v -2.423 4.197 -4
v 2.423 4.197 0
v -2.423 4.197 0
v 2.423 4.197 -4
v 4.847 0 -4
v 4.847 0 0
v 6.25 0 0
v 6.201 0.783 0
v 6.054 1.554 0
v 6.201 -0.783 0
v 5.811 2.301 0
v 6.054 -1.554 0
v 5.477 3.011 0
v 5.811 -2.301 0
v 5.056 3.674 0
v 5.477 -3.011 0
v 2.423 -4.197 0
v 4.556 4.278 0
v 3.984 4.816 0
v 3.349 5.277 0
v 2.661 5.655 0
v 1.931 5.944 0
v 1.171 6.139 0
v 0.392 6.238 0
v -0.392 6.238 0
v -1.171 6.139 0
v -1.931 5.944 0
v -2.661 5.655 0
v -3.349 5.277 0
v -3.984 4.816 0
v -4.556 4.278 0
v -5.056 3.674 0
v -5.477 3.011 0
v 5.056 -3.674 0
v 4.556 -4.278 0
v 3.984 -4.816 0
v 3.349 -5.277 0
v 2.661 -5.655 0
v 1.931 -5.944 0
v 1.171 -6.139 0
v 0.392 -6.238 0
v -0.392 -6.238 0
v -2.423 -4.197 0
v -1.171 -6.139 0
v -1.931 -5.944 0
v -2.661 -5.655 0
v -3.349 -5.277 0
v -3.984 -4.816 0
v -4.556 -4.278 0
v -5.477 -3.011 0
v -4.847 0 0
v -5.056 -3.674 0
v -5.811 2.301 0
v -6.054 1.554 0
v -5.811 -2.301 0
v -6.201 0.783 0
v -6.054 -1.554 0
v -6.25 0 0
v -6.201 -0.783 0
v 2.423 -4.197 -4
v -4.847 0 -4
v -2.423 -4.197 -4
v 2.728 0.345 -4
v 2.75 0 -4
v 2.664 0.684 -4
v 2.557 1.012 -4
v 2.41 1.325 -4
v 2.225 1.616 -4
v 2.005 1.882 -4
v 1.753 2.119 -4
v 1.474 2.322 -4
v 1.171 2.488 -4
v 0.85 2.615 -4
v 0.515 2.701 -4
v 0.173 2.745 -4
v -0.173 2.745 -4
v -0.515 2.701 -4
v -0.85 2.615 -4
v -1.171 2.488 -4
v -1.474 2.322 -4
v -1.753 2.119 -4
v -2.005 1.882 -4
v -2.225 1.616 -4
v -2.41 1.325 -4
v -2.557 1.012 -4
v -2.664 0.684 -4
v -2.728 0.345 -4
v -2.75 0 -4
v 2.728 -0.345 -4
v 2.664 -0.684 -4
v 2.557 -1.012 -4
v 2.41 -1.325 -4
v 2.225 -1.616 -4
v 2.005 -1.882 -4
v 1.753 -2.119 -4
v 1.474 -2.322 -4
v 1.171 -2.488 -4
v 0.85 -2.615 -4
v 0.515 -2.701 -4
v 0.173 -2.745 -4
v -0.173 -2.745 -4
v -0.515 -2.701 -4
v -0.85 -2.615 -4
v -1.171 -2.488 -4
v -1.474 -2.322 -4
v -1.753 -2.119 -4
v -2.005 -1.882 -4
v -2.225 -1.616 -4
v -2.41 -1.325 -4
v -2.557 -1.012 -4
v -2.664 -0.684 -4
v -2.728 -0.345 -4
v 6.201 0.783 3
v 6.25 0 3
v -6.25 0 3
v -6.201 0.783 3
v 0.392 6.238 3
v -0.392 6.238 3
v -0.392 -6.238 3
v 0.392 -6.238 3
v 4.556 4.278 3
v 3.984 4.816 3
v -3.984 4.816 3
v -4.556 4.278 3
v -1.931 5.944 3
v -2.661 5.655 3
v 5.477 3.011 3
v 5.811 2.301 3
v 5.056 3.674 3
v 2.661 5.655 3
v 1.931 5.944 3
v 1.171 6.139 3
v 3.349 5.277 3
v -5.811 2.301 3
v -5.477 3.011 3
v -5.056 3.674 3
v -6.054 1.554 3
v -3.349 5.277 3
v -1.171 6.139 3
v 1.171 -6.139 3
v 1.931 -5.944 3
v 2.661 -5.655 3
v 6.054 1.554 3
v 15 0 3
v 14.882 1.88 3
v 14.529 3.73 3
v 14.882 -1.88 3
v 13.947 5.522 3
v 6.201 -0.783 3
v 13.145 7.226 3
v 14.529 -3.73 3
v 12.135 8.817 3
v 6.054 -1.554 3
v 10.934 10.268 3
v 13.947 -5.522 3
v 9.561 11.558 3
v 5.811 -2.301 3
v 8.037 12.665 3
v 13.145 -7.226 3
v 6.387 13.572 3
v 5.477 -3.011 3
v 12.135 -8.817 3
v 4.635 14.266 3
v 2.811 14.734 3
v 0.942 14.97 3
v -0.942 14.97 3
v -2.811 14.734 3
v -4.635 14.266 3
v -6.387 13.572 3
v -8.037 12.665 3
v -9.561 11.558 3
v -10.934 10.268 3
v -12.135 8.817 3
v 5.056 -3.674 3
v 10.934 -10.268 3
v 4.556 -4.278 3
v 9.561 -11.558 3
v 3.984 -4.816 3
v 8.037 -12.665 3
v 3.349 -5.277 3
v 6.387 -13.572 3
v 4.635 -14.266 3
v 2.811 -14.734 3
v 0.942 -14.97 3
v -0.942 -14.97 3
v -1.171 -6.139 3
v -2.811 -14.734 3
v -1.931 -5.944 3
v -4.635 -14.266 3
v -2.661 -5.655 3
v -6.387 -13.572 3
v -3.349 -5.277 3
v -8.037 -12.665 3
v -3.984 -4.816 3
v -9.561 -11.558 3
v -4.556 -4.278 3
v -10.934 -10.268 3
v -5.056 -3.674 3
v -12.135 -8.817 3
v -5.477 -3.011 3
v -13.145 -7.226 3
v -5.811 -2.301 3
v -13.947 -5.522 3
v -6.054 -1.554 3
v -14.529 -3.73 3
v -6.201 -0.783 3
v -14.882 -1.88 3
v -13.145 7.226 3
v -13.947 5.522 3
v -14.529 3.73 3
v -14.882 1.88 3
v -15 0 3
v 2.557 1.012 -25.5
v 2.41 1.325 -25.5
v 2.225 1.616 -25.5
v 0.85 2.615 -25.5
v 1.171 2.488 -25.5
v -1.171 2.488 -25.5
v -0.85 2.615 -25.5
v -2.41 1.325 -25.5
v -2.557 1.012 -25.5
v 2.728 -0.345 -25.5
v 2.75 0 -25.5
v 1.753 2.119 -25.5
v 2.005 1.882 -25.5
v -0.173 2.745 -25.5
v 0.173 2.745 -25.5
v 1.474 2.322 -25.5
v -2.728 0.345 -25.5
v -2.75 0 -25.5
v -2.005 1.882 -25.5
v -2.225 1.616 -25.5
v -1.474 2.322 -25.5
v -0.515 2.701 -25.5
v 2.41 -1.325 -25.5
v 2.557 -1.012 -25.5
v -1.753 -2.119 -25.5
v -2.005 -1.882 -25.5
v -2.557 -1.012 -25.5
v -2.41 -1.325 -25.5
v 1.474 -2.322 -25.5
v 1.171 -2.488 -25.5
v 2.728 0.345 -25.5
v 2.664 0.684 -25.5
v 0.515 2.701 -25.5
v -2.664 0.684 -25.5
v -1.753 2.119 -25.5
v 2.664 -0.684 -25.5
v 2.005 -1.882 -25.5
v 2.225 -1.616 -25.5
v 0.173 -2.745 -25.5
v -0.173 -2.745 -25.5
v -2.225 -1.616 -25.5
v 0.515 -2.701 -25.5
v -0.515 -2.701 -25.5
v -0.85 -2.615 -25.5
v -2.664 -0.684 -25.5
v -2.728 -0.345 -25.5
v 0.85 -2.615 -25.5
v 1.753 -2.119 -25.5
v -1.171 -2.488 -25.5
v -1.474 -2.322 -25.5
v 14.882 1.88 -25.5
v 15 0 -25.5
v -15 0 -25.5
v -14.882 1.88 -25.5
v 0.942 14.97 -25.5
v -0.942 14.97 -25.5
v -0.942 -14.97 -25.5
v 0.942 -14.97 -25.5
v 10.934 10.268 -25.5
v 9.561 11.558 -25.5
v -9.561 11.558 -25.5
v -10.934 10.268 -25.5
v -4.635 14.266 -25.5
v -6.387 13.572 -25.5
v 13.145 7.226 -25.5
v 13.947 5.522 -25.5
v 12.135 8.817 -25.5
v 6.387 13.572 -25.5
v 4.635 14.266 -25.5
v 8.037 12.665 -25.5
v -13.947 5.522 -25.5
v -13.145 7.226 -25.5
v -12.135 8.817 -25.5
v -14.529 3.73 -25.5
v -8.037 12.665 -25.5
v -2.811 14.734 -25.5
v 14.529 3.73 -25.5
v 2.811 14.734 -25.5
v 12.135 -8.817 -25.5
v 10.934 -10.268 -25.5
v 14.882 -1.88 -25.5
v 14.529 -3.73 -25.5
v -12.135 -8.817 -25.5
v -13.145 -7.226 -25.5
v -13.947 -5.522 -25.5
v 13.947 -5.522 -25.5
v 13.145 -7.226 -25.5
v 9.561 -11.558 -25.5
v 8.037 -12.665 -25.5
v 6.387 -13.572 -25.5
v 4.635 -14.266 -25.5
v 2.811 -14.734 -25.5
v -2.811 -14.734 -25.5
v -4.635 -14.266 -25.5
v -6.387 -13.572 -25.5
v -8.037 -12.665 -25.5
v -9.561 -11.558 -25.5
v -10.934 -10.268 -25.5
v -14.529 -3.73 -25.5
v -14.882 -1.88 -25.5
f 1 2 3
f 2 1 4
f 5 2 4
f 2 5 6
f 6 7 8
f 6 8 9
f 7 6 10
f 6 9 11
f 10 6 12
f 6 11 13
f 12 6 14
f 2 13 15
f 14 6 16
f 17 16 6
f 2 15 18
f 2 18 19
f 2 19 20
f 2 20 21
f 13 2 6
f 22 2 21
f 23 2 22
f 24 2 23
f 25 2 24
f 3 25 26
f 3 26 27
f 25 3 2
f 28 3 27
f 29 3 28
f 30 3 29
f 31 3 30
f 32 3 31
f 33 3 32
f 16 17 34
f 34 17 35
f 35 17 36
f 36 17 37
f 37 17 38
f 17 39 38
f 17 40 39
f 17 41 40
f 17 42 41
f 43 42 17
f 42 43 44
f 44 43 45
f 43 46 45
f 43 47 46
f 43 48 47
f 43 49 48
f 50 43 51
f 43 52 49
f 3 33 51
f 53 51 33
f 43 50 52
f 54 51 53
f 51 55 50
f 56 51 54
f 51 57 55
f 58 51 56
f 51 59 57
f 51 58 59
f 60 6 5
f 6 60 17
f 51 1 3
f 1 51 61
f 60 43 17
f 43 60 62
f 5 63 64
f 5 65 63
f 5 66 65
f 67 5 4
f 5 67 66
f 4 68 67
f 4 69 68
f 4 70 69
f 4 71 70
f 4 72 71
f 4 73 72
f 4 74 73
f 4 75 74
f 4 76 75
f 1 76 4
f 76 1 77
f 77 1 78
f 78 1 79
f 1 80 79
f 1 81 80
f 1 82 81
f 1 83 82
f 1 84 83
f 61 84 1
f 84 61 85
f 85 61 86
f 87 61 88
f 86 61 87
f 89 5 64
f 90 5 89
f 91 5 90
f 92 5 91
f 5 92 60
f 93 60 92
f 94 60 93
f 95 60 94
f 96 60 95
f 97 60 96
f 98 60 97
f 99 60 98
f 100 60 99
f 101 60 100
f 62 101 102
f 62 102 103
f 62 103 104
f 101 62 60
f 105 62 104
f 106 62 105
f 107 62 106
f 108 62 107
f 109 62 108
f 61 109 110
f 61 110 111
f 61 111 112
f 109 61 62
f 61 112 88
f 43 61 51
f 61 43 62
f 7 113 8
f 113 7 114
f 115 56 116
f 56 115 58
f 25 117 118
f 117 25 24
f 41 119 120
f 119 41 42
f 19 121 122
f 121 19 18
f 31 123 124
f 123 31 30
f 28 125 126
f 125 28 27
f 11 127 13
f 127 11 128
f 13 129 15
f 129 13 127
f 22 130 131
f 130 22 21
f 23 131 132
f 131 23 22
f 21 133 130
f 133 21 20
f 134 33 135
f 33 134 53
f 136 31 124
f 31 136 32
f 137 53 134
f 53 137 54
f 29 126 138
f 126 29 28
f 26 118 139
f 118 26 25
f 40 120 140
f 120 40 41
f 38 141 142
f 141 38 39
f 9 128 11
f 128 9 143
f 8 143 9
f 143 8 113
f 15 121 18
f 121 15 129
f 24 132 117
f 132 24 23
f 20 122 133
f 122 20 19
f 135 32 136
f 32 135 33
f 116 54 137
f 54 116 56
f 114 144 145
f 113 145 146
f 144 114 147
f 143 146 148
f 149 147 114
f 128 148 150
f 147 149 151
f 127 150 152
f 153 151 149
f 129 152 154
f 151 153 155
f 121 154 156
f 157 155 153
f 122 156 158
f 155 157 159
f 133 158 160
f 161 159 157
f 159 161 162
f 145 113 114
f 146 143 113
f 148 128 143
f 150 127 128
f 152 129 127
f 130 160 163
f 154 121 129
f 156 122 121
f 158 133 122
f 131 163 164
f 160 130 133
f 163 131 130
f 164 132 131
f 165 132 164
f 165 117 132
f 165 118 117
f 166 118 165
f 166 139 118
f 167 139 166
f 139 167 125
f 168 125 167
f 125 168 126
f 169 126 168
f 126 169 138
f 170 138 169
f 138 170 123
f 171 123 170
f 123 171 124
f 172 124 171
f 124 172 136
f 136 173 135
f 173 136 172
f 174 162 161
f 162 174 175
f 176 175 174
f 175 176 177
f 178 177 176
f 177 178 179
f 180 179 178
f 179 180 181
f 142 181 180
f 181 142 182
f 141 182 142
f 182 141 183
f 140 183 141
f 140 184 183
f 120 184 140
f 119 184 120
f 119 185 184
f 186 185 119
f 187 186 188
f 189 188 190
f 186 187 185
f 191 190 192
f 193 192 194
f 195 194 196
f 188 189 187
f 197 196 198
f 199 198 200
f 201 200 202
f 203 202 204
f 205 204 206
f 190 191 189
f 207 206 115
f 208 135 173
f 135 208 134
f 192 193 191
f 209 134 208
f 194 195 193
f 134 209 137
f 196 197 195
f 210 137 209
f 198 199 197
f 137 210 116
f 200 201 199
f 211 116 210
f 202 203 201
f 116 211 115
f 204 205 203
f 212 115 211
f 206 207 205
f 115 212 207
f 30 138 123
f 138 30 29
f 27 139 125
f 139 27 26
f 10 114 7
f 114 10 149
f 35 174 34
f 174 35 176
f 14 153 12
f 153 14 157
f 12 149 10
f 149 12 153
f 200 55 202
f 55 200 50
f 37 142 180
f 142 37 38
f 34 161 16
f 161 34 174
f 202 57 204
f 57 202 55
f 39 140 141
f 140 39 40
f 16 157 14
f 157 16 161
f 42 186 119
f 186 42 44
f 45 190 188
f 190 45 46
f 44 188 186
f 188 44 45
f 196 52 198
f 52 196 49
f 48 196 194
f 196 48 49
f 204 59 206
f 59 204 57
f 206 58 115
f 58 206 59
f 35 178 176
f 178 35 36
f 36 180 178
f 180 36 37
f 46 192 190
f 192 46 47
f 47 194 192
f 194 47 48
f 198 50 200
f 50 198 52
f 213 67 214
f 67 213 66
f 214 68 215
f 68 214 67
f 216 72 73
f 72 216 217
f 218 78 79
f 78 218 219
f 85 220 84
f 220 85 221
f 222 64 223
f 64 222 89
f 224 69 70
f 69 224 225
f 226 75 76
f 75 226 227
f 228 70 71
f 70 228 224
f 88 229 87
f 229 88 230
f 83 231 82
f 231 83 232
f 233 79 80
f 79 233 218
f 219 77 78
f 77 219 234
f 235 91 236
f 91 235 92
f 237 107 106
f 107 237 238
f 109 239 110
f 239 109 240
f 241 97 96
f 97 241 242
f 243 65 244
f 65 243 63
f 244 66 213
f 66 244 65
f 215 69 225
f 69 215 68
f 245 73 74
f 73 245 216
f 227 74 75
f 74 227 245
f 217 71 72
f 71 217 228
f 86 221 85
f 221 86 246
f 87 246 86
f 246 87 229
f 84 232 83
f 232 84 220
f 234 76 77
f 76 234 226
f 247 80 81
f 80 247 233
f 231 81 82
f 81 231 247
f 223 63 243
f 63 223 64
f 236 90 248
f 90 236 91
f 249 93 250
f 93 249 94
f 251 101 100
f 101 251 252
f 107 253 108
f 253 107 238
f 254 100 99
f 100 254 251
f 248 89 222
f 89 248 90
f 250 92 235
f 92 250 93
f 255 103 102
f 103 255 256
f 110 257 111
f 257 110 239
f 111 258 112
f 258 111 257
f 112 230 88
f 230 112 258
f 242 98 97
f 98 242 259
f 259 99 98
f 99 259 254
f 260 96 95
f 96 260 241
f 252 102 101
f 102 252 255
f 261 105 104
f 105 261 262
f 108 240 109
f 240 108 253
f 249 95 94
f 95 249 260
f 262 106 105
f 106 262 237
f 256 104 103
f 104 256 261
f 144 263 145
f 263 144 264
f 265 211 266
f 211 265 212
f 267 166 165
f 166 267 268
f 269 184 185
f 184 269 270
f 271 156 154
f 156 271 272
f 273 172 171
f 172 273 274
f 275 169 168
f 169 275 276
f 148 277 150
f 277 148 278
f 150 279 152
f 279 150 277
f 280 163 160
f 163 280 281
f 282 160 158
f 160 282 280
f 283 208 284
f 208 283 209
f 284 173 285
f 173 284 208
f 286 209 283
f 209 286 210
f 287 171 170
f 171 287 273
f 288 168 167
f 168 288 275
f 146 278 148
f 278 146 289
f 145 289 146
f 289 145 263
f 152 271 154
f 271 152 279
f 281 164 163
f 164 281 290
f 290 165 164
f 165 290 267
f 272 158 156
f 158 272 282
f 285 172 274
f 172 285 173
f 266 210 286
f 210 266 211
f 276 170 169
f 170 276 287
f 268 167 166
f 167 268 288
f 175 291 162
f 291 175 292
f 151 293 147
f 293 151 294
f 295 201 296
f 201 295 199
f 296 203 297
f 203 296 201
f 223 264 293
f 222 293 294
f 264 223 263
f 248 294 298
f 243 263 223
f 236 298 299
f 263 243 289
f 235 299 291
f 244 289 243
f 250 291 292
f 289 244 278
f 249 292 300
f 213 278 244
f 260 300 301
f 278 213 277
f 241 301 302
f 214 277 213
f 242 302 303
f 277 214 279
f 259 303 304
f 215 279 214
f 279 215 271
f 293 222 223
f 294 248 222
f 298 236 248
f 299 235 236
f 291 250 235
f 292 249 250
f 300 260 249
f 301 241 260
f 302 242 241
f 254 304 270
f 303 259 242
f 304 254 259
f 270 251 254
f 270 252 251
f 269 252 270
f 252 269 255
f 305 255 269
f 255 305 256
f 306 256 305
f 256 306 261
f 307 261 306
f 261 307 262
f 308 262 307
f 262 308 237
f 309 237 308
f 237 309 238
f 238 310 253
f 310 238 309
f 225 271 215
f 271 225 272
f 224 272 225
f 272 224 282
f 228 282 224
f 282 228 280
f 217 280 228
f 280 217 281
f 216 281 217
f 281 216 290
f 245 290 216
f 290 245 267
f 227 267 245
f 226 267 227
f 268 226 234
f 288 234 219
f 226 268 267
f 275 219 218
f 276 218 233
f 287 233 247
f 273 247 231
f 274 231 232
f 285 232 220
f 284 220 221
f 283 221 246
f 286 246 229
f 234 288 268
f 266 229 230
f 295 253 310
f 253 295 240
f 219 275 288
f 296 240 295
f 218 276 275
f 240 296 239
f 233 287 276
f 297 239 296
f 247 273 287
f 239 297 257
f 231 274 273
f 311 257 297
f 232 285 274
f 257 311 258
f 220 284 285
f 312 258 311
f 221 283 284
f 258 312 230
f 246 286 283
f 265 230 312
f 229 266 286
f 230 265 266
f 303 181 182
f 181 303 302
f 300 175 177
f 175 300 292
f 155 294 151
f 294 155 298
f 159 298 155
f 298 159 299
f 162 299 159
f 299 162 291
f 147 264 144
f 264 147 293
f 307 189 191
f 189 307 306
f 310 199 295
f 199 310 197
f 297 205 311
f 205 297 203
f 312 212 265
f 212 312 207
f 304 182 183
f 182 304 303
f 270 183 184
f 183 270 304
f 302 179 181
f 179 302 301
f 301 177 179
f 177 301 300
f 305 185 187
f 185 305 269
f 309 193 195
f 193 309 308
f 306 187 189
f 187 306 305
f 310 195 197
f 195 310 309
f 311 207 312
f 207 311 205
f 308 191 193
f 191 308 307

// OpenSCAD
$fn = 50;

difference() {
	union() {
		translate(v = [0, 0, -25.5]) {
			cylinder(h = 28.5, r = 15.0);
		}
	}
	union() {
		translate(v = [0, 0, 0]) {
			rotate(a = [0, 0, 0]) {
				difference() {
					union() {
						translate(v = [0, 0, -4]) {
							linear_extrude(height = 4) {
								polygon(points = [[4.8468, 0.0], [2.4234000000000004, 4.197451927062417], [-2.423399999999999, 4.197451927062417], [-4.8468, 5.935618106107392e-16], [-2.423400000000002, -4.197451927062416], [2.423399999999997, -4.197451927062419]]);
							}
						}
					}
					union();
				}
			}
		}
		#cylinder(h = 3, r = 6.25);
		#translate(v = [0, 0, -100.0]) {
			cylinder(h = 200, r = 2.75);
		}
	}
}
